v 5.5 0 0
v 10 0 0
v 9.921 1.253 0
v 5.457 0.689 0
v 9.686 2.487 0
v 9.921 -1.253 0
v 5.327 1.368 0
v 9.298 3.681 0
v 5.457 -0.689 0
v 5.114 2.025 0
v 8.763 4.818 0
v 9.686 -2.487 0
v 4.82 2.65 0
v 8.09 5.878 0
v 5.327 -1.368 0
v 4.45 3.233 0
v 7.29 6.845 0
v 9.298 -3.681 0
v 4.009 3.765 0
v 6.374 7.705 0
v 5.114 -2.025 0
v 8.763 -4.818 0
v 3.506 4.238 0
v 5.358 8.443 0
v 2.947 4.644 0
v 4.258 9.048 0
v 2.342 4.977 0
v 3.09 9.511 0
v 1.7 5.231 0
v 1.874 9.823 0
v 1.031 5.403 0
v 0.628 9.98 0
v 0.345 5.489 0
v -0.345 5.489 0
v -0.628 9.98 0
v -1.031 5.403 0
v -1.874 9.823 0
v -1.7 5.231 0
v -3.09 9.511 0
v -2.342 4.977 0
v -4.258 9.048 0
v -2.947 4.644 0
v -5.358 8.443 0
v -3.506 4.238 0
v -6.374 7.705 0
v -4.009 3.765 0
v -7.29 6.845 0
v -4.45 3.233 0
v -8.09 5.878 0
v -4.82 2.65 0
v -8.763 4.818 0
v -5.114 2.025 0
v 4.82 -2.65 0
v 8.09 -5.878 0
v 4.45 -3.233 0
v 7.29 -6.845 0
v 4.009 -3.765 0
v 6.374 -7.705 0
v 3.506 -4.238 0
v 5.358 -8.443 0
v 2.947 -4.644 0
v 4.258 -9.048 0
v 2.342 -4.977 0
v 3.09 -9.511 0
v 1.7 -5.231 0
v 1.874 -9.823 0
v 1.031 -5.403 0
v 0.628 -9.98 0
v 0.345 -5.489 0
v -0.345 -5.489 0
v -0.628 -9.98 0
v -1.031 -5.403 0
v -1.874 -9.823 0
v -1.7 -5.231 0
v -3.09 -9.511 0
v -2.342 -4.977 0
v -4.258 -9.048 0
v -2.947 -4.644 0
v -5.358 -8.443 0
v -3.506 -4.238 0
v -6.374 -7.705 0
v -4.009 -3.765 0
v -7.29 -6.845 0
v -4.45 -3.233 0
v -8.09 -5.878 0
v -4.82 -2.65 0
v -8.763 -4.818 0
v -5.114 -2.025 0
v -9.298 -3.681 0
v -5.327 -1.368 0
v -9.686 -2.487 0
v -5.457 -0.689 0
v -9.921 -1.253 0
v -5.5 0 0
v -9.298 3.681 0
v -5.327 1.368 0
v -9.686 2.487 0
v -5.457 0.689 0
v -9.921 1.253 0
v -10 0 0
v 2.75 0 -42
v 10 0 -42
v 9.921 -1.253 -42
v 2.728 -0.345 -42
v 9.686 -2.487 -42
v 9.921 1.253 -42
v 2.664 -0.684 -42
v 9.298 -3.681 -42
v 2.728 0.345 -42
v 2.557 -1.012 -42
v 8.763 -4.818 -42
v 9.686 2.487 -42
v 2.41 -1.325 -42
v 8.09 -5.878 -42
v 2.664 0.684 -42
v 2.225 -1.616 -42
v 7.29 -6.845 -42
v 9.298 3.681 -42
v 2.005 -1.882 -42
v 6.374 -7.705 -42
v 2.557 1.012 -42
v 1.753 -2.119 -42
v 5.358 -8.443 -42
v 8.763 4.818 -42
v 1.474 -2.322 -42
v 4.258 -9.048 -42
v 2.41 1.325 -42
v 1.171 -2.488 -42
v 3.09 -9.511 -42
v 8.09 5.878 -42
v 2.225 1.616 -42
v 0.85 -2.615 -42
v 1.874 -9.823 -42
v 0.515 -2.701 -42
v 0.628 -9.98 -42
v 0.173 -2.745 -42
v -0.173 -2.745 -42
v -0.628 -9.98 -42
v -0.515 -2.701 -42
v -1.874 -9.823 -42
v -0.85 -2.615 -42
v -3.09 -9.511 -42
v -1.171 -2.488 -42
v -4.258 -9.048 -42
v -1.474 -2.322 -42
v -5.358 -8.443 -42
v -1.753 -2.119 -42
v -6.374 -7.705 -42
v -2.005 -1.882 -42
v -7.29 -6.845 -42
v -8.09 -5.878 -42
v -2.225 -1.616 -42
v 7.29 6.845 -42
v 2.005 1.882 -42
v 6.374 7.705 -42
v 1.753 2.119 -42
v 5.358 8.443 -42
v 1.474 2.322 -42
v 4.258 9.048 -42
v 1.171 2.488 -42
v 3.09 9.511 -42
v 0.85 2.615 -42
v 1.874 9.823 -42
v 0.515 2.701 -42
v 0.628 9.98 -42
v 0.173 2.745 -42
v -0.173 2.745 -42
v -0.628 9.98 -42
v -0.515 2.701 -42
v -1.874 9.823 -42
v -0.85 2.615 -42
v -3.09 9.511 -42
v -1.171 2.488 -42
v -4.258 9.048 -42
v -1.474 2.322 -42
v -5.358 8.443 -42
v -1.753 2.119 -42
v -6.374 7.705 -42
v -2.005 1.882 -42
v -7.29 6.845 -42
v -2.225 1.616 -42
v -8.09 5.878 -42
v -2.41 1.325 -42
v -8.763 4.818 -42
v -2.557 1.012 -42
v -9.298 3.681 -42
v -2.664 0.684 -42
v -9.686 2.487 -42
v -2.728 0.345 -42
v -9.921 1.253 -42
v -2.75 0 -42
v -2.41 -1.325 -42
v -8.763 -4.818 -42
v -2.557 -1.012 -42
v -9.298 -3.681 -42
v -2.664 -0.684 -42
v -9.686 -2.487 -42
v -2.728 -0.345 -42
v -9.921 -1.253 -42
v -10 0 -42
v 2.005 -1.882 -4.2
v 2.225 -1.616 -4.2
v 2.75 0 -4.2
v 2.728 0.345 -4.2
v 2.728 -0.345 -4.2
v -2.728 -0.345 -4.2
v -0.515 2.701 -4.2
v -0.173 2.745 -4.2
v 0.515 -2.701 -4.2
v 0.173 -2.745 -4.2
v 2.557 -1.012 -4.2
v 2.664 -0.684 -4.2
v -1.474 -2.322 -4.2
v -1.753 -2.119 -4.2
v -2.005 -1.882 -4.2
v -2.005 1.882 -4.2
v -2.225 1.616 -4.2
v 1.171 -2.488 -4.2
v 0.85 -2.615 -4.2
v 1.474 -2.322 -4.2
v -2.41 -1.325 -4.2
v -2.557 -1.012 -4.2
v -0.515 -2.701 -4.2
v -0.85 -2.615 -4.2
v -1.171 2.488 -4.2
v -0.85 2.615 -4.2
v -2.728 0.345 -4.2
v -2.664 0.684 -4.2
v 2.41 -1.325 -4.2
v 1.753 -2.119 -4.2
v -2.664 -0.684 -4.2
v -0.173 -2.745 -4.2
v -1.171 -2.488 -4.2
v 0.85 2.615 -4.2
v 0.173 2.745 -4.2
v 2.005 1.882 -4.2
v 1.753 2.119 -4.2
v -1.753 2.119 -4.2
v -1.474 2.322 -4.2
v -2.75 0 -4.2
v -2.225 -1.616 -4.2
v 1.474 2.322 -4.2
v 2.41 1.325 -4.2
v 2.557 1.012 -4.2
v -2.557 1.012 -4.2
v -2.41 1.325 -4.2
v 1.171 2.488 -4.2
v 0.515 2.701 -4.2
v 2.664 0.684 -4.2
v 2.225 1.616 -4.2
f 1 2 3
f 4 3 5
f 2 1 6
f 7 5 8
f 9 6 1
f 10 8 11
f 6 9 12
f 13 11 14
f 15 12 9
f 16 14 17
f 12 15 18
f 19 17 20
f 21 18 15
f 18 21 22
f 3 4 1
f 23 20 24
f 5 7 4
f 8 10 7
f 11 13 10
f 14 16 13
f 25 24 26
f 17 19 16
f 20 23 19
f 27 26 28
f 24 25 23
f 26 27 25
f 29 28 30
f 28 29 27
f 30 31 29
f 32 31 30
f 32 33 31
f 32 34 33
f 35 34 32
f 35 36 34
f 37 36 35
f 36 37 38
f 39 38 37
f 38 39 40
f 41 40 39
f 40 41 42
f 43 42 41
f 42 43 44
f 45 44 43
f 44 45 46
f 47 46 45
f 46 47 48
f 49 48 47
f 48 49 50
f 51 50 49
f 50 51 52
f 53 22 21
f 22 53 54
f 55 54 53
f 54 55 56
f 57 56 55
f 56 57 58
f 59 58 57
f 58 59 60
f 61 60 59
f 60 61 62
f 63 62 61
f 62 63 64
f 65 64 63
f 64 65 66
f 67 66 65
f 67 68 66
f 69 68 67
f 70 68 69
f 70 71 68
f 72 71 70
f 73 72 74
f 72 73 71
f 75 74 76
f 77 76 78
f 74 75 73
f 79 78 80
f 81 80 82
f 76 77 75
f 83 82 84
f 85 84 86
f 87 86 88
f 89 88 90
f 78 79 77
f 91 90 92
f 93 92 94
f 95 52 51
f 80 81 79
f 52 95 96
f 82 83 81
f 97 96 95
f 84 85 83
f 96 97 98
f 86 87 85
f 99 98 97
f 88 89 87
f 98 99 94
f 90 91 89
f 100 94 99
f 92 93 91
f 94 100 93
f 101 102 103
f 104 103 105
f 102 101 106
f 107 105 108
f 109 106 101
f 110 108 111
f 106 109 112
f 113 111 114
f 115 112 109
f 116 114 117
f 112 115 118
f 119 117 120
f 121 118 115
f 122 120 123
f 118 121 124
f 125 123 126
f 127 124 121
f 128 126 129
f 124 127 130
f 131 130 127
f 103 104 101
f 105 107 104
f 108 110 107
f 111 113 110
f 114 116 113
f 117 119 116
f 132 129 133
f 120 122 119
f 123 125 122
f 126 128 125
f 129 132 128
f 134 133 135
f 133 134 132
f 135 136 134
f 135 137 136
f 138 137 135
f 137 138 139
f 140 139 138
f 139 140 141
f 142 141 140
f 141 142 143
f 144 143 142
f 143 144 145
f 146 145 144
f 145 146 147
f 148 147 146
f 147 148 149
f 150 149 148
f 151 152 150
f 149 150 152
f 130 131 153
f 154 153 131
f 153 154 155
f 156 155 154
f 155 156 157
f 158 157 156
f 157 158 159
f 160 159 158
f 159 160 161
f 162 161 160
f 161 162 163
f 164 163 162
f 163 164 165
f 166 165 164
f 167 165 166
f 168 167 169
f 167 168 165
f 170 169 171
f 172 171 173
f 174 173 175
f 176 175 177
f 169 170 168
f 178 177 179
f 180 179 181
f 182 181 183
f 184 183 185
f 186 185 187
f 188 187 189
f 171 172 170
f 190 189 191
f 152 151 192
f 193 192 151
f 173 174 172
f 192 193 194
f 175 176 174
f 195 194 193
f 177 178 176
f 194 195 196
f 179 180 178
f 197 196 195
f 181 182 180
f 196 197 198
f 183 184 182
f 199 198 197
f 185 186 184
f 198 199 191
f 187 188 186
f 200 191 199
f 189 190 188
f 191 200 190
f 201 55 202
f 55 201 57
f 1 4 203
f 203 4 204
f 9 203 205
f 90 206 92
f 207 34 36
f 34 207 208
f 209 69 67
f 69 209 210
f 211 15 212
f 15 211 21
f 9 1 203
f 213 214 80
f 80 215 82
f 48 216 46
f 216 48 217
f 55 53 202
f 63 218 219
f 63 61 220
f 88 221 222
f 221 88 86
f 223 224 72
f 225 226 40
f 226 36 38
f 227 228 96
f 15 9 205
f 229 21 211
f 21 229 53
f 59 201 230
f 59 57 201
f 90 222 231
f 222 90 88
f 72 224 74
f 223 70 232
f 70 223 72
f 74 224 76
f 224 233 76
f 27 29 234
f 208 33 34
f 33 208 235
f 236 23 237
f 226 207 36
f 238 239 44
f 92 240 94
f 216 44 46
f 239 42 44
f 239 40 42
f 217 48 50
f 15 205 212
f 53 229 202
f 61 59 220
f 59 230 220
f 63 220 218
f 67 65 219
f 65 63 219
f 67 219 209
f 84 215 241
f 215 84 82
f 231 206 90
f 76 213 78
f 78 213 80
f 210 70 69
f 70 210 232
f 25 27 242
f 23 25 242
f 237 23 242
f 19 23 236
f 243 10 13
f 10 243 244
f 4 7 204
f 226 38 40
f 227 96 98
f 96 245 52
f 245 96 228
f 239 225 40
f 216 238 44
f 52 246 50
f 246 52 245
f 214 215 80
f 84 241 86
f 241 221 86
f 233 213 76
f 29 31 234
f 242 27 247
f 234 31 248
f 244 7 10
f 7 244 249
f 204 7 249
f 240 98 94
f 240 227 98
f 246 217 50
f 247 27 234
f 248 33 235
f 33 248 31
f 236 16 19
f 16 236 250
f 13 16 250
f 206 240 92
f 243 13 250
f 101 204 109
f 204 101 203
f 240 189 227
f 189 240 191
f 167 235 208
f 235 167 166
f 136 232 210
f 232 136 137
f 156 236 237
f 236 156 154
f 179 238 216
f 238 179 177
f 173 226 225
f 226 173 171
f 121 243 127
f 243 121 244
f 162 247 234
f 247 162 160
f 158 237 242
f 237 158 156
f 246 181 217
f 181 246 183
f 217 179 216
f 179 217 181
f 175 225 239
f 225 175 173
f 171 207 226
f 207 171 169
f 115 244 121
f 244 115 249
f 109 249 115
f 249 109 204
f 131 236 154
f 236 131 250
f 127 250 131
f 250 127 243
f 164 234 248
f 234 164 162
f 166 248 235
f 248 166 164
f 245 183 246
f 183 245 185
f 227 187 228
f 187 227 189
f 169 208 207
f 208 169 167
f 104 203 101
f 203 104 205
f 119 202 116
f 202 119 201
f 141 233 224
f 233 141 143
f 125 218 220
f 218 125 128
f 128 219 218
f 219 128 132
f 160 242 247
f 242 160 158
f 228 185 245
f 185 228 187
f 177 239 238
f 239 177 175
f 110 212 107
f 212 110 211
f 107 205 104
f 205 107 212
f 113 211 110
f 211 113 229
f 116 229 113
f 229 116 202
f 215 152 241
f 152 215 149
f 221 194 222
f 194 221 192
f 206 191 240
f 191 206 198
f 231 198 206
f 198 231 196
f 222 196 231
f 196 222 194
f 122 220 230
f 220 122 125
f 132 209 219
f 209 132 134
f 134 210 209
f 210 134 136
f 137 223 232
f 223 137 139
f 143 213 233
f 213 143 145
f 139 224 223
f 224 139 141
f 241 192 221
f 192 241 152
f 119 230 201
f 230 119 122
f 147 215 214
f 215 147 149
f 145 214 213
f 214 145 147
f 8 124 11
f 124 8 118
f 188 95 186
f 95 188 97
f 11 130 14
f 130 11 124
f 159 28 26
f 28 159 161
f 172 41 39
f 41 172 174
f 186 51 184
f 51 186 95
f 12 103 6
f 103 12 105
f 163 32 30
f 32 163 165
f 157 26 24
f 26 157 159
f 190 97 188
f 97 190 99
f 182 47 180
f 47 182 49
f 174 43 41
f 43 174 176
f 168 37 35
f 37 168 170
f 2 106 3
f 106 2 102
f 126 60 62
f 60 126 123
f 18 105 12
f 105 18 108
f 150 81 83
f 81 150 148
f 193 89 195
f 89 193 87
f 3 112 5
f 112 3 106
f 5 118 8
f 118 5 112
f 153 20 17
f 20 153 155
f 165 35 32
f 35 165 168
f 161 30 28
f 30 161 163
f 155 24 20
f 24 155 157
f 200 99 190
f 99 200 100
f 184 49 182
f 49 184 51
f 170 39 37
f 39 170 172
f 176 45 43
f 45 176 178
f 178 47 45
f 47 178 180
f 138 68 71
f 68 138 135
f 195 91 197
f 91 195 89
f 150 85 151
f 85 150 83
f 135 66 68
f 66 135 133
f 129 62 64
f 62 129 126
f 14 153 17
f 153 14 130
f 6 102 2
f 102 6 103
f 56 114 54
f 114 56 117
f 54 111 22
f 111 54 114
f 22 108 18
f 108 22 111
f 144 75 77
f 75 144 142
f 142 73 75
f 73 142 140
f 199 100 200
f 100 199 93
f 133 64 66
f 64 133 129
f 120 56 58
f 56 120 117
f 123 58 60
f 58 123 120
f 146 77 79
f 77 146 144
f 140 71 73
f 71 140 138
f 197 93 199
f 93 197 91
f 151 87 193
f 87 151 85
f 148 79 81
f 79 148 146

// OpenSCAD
$fn = 50;


difference() {
	union() {
		translate(v = [0, 0, -42.0000000000]) {
			cylinder(h = 42, r = 10.0000000000);
		}
	}
	union() {
		translate(v = [0, 0, 0]) {
			rotate(a = [0, 0, 0]) {
				difference() {
					union() {
						#translate(v = [0, 0, -42.0000000000]) {
							cylinder(h = 42, r = 2.2500000000);
						}
						#translate(v = [0, 0, -4.2000000000]) {
							cylinder(h = 4.2000000000, r1 = 2.7500000000, r2 = 5.5000000000);
						}
						#translate(v = [0, 0, -42.0000000000]) {
							cylinder(h = 42, r = 2.7500000000);
						}
						#translate(v = [0, 0, -42.0000000000]) {
							cylinder(h = 42, r = 2.2500000000);
						}
					}
					union();
				}
			}
		}
	}
}
